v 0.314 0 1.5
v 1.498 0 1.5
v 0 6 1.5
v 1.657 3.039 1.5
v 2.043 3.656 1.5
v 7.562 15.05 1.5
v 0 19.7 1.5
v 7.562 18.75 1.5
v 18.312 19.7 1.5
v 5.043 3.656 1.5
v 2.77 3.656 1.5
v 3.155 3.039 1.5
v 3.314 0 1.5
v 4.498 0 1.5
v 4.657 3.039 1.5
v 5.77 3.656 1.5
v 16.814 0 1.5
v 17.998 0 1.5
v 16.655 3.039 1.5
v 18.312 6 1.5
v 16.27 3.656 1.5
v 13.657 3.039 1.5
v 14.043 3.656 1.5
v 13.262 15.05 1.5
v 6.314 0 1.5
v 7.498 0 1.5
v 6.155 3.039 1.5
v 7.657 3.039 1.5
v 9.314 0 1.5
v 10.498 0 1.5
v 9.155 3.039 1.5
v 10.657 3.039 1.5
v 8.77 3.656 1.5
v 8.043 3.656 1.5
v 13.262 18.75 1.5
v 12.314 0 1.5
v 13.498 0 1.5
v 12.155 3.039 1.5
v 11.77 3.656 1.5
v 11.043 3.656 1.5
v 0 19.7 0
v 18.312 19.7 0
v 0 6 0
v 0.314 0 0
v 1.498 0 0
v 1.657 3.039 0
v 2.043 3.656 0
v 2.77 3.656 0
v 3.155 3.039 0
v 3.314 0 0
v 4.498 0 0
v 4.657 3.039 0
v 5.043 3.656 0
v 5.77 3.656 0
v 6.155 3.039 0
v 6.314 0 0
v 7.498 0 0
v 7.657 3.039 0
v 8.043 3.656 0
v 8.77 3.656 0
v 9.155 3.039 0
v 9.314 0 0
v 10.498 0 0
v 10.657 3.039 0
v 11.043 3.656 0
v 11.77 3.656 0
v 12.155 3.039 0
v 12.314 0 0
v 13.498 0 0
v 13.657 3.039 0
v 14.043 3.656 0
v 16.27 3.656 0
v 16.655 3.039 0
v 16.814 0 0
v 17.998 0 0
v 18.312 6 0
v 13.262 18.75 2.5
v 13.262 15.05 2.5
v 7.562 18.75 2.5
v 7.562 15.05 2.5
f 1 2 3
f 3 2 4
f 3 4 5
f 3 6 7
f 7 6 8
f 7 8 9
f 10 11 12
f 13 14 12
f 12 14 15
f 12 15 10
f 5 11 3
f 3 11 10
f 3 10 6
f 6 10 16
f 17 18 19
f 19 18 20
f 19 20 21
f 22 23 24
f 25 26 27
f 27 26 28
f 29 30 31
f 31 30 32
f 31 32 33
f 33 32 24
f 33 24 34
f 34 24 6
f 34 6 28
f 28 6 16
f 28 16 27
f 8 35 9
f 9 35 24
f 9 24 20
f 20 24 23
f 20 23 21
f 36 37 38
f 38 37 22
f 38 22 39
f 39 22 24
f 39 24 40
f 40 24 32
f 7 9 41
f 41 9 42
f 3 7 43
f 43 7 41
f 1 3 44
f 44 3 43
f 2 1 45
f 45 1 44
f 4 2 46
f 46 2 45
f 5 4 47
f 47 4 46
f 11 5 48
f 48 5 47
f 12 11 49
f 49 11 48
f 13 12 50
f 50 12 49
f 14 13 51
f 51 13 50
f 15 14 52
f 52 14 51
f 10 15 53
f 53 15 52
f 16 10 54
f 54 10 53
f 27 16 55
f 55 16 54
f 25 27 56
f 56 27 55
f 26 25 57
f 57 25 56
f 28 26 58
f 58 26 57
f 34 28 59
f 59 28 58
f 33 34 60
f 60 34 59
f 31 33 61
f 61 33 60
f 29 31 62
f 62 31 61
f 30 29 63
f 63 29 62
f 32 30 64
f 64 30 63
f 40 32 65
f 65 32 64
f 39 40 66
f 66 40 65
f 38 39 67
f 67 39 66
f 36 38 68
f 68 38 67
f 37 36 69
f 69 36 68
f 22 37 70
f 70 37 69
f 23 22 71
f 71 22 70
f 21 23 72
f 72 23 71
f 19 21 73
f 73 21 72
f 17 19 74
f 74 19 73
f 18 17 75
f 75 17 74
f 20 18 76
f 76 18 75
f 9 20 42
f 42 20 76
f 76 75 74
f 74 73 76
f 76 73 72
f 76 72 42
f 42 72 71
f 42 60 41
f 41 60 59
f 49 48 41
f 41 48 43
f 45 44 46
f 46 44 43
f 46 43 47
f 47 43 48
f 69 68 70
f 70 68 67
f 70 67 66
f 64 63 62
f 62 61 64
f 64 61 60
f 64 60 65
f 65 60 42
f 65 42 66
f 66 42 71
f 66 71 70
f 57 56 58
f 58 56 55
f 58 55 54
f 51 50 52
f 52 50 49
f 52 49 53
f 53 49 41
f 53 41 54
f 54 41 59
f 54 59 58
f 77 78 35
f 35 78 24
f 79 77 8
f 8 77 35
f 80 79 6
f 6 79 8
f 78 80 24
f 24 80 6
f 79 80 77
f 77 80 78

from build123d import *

# Parameters (mm, degrees)
BOSS_EXTRUDE1_DEPTH = 1.5
RGB_LED_W           = 5.7
RGB_LED_H           = 3.7
BOSS_EXTRUDE2_DEPTH = 1


with BuildPart() as part:
    # Sketch1 → Boss-Extrude1 (new body)
    with BuildSketch(Plane.XY):
        Polygon((0, 6), (0.314446676, 0), (1.497941481, 0), (1.657221927, 3.039251967), (2.042586863, 3.65596478), (2.769801294, 3.65596478), (3.155166229, 3.039251967), (3.314446676, 0), (4.497941481, 0), (4.657221927, 3.039251967), (5.042586863, 3.65596478), (5.769801294, 3.65596478), (6.155166229, 3.039251967), (6.314446676, 0), (7.497941481, 0), (7.657221927, 3.039251967), (8.042586863, 3.65596478), (8.769801294, 3.65596478), (9.155166229, 3.039251967), (9.314446676, 0), (10.497941481, 0), (10.657221927, 3.039251967), (11.042586863, 3.65596478), (11.769801294, 3.65596478), (12.155166229, 3.039251967), (12.314446676, 0), (13.497941481, 0), (13.657221927, 3.039251967), (14.042586863, 3.65596478), (16.269801294, 3.65596478), (16.655166229, 3.039251967), (16.814446676, 0), (17.997941481, 0), (18.312388157, 6), (18.312388157, 19.7), (0, 19.7), align=None)
    extrude(amount=BOSS_EXTRUDE1_DEPTH)

    # rgb_led → Boss-Extrude2 (add)
    with BuildSketch(Plane.XY.offset(1.5)):
        with Locations((10.412388157, 16.9)):
            Rectangle(RGB_LED_W, RGB_LED_H)
    extrude(amount=BOSS_EXTRUDE2_DEPTH)


solid = part.part
